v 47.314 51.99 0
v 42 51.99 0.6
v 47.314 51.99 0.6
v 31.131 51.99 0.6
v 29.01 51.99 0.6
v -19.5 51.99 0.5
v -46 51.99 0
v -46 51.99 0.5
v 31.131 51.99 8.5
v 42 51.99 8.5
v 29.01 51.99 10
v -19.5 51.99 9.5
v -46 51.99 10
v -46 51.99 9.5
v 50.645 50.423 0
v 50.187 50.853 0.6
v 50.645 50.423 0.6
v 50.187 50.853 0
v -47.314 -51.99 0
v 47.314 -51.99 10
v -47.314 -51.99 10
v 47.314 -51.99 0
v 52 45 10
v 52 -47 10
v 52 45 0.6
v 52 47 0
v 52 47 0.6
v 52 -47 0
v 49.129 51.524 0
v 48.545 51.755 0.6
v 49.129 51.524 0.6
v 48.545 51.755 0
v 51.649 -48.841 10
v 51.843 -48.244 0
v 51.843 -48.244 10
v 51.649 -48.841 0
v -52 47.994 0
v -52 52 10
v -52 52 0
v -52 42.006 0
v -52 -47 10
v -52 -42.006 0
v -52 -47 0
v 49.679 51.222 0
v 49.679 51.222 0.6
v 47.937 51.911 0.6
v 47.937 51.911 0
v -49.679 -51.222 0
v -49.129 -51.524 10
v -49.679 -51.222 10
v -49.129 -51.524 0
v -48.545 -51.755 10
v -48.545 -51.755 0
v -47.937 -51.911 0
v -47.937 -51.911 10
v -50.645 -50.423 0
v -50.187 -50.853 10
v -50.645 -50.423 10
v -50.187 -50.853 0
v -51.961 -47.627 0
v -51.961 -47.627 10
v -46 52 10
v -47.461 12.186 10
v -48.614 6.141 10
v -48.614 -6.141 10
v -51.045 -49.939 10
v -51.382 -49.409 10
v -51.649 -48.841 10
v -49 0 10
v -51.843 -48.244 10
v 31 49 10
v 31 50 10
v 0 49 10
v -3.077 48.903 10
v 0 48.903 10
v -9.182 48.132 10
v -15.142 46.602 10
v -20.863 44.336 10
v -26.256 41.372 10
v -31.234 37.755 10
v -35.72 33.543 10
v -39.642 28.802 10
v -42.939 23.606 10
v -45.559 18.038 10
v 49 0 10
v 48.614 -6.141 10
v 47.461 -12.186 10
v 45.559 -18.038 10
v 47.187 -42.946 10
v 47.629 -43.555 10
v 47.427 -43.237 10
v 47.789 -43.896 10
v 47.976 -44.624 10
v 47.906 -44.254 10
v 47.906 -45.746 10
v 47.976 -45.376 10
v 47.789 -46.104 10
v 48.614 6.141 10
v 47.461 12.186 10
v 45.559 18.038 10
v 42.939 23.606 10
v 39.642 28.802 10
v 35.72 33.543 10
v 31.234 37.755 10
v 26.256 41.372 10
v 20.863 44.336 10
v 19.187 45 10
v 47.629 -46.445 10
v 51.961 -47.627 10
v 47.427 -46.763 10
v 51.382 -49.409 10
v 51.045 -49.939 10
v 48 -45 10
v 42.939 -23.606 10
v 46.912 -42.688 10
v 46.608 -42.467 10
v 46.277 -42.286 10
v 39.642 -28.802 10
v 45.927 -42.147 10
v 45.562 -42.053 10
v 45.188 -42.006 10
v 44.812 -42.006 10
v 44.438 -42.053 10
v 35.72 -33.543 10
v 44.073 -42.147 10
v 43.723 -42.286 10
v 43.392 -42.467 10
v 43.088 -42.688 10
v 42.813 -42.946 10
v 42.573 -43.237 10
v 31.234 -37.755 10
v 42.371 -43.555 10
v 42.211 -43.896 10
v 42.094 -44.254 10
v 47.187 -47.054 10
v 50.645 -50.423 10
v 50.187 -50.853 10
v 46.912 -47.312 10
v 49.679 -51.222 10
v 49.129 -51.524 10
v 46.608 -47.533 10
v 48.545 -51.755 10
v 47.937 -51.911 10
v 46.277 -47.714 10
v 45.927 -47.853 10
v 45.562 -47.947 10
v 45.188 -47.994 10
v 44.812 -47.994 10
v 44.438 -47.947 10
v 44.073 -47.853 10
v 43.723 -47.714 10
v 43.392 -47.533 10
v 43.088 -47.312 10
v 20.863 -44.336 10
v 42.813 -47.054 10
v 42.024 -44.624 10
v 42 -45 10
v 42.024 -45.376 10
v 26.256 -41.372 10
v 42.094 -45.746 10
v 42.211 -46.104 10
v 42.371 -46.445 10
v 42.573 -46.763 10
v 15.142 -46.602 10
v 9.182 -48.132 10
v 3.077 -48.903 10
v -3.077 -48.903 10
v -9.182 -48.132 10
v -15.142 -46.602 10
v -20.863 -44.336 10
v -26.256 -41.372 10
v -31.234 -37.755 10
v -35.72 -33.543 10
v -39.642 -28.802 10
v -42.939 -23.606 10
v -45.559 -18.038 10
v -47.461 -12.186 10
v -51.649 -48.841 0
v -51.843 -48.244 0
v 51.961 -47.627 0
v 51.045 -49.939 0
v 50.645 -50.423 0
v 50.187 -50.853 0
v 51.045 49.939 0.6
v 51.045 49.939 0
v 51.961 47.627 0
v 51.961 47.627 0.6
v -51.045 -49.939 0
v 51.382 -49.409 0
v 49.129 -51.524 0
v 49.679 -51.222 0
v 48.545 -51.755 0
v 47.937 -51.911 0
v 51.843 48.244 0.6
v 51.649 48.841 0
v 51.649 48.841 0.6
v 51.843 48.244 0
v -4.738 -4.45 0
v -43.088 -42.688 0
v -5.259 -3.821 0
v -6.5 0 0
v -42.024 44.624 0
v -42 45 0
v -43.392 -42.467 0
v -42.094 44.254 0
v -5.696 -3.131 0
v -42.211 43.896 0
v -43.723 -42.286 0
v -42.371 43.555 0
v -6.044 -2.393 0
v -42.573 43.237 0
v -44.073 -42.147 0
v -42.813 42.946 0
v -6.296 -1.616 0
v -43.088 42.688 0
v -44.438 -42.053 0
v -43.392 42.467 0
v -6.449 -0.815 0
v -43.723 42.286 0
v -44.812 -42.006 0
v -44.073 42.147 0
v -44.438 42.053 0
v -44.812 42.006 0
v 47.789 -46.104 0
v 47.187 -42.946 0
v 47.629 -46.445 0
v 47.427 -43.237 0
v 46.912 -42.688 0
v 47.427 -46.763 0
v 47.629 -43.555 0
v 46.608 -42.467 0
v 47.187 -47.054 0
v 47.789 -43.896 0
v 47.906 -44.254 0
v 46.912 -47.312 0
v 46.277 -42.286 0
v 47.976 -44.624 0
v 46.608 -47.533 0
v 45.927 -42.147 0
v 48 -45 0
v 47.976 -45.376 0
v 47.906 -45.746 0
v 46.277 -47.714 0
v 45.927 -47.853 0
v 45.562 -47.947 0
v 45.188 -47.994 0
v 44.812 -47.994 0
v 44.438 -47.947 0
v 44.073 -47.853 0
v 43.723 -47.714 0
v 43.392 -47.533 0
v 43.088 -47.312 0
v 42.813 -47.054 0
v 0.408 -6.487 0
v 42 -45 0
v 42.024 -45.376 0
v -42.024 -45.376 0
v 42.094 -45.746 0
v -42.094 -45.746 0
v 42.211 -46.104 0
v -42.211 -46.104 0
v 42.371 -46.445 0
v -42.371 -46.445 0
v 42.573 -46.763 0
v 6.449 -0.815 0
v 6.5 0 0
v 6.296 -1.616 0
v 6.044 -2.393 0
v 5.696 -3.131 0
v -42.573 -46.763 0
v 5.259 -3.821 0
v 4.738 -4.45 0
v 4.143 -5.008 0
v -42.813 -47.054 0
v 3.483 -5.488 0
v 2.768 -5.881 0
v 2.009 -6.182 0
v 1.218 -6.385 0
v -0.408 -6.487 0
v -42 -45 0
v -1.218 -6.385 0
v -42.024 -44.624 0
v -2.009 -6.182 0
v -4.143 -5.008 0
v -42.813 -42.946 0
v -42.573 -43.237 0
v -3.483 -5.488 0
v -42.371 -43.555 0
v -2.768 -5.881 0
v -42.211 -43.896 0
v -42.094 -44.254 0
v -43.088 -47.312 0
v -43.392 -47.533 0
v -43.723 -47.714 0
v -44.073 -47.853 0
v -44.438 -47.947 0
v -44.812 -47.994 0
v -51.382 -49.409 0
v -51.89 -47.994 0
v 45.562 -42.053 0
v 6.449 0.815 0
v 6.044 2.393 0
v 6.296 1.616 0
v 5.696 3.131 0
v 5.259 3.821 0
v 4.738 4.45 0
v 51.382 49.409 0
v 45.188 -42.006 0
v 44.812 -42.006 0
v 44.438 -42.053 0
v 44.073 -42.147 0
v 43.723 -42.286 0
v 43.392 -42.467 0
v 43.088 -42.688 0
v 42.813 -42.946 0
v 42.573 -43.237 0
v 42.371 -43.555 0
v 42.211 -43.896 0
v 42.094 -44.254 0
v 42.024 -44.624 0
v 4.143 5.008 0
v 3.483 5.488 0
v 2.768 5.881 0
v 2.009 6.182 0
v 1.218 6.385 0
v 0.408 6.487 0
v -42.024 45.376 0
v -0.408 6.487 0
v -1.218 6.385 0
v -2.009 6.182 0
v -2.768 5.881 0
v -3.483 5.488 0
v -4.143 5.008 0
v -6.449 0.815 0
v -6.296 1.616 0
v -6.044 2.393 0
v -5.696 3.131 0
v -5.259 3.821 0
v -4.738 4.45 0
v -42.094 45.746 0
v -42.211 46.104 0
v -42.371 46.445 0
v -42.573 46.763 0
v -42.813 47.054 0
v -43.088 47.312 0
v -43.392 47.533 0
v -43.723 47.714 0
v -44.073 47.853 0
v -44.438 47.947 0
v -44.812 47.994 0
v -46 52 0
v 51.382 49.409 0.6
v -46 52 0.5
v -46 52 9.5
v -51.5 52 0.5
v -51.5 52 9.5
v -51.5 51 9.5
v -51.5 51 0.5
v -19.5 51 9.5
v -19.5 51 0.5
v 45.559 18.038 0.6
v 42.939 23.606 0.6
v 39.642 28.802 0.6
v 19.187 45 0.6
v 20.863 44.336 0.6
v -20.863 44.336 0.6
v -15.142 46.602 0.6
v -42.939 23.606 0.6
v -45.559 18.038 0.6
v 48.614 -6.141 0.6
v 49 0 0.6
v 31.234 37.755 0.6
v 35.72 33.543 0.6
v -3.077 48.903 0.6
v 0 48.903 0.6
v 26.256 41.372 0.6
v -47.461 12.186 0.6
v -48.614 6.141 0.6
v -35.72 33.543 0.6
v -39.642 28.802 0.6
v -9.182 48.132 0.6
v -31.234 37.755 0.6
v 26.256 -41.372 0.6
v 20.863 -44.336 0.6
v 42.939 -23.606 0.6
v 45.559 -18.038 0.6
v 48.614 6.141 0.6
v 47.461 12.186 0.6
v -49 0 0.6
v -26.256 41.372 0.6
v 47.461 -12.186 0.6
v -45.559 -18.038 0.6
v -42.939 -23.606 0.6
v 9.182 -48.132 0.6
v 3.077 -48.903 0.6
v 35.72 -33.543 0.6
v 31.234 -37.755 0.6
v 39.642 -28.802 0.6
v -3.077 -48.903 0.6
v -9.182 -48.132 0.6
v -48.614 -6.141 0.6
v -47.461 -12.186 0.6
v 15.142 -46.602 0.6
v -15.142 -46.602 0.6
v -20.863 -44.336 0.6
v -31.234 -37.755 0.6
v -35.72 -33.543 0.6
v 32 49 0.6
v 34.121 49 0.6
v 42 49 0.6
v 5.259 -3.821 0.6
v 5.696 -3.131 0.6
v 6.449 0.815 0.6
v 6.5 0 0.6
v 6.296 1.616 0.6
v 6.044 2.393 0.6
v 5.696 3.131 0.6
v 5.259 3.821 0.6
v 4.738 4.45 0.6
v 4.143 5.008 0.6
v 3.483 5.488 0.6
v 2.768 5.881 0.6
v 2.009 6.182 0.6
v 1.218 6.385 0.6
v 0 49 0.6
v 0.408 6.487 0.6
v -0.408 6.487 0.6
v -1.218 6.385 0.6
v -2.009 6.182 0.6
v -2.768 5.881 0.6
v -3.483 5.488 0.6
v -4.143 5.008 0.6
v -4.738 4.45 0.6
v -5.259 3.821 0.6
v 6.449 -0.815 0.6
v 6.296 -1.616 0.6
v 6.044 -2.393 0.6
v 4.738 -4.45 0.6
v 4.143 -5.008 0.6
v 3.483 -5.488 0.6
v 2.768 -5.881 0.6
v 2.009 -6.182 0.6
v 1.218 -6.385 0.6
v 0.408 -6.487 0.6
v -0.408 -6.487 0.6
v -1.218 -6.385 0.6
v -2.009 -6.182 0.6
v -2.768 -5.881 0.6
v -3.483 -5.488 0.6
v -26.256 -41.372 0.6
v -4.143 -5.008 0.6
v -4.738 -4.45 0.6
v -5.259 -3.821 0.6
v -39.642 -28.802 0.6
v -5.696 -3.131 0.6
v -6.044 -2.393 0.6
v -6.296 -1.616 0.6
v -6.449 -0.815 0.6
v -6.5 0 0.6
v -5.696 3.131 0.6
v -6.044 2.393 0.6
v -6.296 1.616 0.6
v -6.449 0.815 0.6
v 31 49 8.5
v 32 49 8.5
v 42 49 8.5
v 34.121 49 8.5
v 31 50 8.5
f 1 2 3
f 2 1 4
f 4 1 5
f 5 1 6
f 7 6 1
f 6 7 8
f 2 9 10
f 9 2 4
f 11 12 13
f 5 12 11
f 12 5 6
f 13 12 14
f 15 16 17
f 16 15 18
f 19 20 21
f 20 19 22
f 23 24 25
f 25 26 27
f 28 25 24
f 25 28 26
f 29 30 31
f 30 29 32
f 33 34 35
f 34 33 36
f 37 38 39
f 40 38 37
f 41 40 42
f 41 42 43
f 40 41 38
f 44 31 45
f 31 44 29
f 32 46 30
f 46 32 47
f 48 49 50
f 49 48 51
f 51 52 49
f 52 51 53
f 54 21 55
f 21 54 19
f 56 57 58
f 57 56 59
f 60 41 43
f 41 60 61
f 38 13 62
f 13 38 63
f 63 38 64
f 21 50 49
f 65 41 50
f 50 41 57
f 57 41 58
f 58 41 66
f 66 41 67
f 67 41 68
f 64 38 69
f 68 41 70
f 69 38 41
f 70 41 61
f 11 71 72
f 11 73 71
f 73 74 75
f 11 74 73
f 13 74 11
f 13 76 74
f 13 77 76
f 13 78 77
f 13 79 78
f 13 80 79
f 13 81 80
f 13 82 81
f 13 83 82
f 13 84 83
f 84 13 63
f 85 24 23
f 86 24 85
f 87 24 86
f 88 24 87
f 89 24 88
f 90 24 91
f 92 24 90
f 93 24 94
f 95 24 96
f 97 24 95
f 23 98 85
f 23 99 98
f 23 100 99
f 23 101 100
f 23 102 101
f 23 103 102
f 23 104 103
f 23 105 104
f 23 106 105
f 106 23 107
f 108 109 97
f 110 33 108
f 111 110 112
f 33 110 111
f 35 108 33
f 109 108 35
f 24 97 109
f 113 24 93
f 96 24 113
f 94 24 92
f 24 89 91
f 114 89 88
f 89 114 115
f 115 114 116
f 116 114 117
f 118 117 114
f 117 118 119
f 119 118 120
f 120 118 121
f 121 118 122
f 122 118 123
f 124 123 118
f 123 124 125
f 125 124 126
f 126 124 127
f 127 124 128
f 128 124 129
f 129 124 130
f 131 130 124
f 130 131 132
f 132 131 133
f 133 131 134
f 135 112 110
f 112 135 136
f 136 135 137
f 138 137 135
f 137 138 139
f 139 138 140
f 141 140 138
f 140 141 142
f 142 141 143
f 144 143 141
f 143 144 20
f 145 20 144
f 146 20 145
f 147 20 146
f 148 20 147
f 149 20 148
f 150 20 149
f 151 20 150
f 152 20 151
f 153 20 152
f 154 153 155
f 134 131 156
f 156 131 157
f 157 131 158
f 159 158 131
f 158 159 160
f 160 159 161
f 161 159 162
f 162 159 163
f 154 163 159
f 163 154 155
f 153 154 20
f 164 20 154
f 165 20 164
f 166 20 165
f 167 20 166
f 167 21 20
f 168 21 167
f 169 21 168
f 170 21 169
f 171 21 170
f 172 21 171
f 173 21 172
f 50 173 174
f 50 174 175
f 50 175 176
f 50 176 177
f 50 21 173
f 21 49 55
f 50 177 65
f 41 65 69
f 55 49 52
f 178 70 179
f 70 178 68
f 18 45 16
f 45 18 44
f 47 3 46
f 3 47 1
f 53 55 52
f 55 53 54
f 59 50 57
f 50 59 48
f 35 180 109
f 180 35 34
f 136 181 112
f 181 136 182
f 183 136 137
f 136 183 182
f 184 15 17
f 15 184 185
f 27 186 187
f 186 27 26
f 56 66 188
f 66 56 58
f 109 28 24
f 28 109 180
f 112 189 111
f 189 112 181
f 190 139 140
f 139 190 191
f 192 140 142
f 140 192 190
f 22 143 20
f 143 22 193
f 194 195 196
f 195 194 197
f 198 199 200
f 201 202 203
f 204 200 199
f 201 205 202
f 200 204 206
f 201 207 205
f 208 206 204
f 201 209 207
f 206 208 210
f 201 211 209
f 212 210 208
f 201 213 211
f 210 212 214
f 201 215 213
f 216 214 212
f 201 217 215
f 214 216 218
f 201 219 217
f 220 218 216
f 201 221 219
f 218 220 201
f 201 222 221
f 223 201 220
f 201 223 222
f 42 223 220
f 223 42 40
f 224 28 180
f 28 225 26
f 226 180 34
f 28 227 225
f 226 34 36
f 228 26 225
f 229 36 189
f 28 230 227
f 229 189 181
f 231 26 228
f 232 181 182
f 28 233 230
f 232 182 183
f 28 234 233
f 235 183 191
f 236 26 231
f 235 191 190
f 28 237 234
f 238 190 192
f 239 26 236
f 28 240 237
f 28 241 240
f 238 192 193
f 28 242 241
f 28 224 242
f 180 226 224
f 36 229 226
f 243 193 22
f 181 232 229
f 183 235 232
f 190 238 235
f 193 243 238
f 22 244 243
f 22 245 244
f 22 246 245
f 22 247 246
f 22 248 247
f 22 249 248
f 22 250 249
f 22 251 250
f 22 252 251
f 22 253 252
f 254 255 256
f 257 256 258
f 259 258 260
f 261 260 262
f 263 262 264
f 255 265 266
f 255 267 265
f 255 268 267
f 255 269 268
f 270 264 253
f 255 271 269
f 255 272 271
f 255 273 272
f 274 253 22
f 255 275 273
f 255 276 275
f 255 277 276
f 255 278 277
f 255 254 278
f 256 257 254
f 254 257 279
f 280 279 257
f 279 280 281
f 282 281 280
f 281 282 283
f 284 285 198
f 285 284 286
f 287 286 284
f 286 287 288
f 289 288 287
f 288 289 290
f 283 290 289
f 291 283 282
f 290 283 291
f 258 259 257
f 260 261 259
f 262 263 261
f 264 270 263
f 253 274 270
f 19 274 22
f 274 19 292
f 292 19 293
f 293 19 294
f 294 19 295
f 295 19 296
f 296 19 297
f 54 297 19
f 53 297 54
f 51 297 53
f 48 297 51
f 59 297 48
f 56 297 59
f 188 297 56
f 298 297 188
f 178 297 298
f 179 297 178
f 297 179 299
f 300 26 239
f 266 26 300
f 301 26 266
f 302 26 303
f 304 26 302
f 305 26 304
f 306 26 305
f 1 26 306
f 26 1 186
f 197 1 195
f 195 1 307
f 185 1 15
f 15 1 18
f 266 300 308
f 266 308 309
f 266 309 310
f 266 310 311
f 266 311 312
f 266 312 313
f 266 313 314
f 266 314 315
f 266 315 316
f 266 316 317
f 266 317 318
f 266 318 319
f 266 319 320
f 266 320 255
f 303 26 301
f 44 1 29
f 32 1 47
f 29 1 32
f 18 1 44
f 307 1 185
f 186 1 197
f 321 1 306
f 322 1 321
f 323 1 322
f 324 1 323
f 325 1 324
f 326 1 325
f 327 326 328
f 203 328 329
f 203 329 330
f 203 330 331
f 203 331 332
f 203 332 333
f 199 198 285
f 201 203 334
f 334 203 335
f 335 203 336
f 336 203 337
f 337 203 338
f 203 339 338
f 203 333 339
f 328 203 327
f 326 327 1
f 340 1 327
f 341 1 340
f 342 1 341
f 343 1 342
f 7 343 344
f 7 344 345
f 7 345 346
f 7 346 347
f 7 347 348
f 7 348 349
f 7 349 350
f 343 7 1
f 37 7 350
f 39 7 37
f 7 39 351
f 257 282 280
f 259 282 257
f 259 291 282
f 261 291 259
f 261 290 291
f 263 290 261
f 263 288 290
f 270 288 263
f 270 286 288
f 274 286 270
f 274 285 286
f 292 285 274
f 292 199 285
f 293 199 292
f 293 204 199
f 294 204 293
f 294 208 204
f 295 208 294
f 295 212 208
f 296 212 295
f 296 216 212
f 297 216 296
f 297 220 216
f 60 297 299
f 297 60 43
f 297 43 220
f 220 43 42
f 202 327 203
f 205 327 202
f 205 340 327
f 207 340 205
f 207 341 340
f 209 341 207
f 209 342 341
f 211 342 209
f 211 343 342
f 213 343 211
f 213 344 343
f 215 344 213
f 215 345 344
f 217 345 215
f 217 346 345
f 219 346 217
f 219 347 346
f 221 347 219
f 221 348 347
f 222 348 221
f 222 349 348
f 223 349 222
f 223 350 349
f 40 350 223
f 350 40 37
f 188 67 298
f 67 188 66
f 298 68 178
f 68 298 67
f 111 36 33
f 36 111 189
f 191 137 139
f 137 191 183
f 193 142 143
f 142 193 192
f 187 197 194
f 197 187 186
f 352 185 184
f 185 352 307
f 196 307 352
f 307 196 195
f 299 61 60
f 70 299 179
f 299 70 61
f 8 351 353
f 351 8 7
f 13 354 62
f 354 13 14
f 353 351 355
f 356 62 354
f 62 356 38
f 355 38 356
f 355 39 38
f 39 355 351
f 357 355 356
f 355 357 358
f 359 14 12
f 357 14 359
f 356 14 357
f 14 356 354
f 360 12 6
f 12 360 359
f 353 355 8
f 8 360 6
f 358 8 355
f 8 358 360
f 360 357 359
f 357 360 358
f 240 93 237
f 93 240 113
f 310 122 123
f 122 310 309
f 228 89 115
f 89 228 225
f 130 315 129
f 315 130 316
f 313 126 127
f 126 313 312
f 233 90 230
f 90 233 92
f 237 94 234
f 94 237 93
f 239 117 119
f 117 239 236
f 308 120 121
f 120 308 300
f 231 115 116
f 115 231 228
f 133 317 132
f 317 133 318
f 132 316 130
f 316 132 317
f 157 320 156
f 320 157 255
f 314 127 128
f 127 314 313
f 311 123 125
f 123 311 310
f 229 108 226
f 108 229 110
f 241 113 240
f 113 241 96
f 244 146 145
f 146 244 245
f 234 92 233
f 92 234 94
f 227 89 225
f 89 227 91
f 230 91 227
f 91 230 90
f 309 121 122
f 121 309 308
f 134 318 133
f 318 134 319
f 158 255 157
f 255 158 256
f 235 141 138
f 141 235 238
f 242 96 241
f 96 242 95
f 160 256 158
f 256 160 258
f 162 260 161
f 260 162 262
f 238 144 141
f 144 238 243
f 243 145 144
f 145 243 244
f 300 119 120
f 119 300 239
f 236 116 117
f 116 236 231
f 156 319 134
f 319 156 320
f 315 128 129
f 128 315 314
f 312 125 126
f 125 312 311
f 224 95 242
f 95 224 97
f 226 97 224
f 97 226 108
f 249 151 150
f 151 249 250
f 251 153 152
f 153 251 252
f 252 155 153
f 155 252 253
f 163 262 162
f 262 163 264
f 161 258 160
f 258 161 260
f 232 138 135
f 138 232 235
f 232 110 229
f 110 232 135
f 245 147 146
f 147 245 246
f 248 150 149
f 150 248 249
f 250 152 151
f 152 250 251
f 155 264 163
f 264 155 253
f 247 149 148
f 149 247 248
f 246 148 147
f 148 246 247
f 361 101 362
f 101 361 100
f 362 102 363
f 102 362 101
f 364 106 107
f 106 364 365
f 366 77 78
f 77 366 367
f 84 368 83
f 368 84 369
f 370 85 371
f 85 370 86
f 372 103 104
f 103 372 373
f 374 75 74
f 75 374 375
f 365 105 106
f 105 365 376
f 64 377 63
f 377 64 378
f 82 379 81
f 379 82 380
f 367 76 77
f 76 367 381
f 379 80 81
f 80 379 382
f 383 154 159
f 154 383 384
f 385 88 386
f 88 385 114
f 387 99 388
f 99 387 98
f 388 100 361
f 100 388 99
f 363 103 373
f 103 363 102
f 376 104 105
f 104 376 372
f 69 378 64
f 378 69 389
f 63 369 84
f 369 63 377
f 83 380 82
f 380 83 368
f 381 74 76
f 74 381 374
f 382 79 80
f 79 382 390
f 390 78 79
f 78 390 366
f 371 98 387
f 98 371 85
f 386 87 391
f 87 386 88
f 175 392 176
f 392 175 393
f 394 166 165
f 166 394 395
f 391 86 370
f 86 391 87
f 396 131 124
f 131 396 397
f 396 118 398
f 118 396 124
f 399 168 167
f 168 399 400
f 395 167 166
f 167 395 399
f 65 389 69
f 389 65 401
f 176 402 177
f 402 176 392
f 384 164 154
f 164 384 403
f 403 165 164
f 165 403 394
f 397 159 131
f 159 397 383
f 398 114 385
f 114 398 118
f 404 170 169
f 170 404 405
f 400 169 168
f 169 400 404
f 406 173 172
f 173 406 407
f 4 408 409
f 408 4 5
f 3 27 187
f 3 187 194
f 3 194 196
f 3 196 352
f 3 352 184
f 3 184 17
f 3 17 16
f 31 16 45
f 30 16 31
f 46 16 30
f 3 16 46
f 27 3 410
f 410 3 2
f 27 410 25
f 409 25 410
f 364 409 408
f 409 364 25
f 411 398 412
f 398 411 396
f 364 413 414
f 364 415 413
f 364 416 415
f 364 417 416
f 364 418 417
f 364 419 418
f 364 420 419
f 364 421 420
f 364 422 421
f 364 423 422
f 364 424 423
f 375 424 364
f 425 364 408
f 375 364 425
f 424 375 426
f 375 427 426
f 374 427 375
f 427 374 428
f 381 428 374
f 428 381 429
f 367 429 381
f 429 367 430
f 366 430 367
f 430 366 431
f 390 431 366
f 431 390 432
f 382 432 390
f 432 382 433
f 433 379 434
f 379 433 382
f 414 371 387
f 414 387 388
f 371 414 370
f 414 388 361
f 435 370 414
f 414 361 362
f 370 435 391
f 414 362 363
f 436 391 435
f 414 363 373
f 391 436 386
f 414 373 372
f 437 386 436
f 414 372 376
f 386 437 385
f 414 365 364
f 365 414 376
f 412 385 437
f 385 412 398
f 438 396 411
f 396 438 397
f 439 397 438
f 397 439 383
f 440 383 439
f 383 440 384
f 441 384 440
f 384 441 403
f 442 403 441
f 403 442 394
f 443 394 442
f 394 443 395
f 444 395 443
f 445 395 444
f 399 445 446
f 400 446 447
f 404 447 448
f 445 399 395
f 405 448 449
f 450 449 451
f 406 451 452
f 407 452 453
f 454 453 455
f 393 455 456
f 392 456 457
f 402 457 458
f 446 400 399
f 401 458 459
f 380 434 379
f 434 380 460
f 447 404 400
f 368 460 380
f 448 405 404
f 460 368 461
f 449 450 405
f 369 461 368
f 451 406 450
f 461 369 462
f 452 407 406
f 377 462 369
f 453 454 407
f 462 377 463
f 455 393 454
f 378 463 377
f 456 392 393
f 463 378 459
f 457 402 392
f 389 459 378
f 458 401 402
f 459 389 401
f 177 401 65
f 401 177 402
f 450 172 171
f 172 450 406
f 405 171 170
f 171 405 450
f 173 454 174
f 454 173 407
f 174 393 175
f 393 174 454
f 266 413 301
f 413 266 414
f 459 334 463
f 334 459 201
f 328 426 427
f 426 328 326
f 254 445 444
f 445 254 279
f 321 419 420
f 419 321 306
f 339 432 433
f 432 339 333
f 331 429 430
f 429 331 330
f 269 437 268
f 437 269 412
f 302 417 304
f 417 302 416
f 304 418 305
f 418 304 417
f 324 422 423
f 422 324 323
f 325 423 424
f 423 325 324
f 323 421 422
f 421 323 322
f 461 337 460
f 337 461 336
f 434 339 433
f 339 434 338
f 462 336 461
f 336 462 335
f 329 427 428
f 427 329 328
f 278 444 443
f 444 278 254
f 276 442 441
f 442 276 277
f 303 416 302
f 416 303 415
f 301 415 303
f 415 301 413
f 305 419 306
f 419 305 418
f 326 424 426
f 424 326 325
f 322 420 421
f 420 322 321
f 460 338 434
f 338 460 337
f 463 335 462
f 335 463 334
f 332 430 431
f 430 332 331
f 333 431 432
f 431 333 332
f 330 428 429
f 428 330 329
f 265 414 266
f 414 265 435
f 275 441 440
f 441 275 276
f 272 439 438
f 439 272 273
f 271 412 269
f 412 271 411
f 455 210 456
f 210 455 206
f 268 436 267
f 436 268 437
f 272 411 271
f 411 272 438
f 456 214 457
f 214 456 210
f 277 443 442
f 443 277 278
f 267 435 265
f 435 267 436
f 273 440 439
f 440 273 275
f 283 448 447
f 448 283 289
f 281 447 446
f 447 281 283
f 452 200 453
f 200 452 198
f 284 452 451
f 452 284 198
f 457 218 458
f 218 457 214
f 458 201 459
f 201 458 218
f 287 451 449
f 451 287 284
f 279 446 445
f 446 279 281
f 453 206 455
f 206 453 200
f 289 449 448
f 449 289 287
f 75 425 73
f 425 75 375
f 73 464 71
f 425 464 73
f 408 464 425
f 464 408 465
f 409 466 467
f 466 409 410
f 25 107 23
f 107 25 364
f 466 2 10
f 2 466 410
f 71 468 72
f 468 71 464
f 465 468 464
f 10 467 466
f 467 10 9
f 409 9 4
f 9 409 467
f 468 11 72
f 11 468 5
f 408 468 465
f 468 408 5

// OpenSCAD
$fn = 50;


difference() {
	union() {
		hull() {
			translate(v = [-47.0000000000, 47.0000000000, 0]) {
				cylinder(h = 10, r = 5);
			}
			translate(v = [47.0000000000, 47.0000000000, 0]) {
				cylinder(h = 10, r = 5);
			}
			translate(v = [-47.0000000000, -47.0000000000, 0]) {
				cylinder(h = 10, r = 5);
			}
			translate(v = [47.0000000000, -47.0000000000, 0]) {
				cylinder(h = 10, r = 5);
			}
		}
		translate(v = [-52.0000000000, 46.0000000000, 0]) {
			cube(size = [6, 6, 10]);
		}
	}
	union() {
		translate(v = [-52.5000000000, -45.0000000000, -250.0000000000]) {
			rotate(a = [0, 0, 0]) {
				difference() {
					union() {
						hull() {
							translate(v = [7.5000000000, 0, 0]) {
								cylinder(h = 250, r = 3.0000000000, r1 = 3.0000000000, r2 = 3.0000000000);
							}
							translate(v = [-7.5000000000, 0, 0]) {
								cylinder(h = 250, r = 3.0000000000, r1 = 3.0000000000, r2 = 3.0000000000);
							}
						}
					}
					union();
				}
			}
		}
		translate(v = [-52.5000000000, 45.0000000000, -250.0000000000]) {
			rotate(a = [0, 0, 0]) {
				difference() {
					union() {
						hull() {
							translate(v = [7.5000000000, 0, 0]) {
								cylinder(h = 250, r = 3.0000000000, r1 = 3.0000000000, r2 = 3.0000000000);
							}
							translate(v = [-7.5000000000, 0, 0]) {
								cylinder(h = 250, r = 3.0000000000, r1 = 3.0000000000, r2 = 3.0000000000);
							}
						}
					}
					union();
				}
			}
		}
		translate(v = [-51.5000000000, 51.0000000000, 0.5000000000]) {
			cube(size = [32, 1, 9.0000000000]);
		}
		translate(v = [45.0000000000, -45.0000000000, -50.0000000000]) {
			cylinder(h = 100, r = 3.0000000000);
		}
		translate(v = [0, 0, 0.6000000000]) {
			cylinder(h = 12.4000000000, r = 49.0000000000);
		}
		translate(v = [0, 0, -5.0000000000]) {
			cylinder(h = 10, r = 6.5000000000);
		}
		translate(v = [0.0000000000, 45.0000000000, 0.6000000000]) {
			cube(size = [52.0000000000, 4, 12.4000000000]);
		}
		translate(v = [42.0000000000, 45.0000000000, 0.6000000000]) {
			cube(size = [10, 7, 12.4000000000]);
		}
		translate(v = [31.0000000000, 45.0000000000, 8.5000000000]) {
			cube(size = [21, 7, 1.5000000000]);
		}
		translate(v = [28.2500000000, 52.7500000000, 0.6000000000]) {
			rotate(a = [0, 0, -45]) {
				cube(size = [7.5000000000, 1.5000000000, 12.4000000000]);
			}
		}
		translate(v = [11.0610000000, 43.0000000000, 0.6000000000]) {
			cube(size = [7.5000000000, 2, 9.4000000000]);
		}
	}
}
